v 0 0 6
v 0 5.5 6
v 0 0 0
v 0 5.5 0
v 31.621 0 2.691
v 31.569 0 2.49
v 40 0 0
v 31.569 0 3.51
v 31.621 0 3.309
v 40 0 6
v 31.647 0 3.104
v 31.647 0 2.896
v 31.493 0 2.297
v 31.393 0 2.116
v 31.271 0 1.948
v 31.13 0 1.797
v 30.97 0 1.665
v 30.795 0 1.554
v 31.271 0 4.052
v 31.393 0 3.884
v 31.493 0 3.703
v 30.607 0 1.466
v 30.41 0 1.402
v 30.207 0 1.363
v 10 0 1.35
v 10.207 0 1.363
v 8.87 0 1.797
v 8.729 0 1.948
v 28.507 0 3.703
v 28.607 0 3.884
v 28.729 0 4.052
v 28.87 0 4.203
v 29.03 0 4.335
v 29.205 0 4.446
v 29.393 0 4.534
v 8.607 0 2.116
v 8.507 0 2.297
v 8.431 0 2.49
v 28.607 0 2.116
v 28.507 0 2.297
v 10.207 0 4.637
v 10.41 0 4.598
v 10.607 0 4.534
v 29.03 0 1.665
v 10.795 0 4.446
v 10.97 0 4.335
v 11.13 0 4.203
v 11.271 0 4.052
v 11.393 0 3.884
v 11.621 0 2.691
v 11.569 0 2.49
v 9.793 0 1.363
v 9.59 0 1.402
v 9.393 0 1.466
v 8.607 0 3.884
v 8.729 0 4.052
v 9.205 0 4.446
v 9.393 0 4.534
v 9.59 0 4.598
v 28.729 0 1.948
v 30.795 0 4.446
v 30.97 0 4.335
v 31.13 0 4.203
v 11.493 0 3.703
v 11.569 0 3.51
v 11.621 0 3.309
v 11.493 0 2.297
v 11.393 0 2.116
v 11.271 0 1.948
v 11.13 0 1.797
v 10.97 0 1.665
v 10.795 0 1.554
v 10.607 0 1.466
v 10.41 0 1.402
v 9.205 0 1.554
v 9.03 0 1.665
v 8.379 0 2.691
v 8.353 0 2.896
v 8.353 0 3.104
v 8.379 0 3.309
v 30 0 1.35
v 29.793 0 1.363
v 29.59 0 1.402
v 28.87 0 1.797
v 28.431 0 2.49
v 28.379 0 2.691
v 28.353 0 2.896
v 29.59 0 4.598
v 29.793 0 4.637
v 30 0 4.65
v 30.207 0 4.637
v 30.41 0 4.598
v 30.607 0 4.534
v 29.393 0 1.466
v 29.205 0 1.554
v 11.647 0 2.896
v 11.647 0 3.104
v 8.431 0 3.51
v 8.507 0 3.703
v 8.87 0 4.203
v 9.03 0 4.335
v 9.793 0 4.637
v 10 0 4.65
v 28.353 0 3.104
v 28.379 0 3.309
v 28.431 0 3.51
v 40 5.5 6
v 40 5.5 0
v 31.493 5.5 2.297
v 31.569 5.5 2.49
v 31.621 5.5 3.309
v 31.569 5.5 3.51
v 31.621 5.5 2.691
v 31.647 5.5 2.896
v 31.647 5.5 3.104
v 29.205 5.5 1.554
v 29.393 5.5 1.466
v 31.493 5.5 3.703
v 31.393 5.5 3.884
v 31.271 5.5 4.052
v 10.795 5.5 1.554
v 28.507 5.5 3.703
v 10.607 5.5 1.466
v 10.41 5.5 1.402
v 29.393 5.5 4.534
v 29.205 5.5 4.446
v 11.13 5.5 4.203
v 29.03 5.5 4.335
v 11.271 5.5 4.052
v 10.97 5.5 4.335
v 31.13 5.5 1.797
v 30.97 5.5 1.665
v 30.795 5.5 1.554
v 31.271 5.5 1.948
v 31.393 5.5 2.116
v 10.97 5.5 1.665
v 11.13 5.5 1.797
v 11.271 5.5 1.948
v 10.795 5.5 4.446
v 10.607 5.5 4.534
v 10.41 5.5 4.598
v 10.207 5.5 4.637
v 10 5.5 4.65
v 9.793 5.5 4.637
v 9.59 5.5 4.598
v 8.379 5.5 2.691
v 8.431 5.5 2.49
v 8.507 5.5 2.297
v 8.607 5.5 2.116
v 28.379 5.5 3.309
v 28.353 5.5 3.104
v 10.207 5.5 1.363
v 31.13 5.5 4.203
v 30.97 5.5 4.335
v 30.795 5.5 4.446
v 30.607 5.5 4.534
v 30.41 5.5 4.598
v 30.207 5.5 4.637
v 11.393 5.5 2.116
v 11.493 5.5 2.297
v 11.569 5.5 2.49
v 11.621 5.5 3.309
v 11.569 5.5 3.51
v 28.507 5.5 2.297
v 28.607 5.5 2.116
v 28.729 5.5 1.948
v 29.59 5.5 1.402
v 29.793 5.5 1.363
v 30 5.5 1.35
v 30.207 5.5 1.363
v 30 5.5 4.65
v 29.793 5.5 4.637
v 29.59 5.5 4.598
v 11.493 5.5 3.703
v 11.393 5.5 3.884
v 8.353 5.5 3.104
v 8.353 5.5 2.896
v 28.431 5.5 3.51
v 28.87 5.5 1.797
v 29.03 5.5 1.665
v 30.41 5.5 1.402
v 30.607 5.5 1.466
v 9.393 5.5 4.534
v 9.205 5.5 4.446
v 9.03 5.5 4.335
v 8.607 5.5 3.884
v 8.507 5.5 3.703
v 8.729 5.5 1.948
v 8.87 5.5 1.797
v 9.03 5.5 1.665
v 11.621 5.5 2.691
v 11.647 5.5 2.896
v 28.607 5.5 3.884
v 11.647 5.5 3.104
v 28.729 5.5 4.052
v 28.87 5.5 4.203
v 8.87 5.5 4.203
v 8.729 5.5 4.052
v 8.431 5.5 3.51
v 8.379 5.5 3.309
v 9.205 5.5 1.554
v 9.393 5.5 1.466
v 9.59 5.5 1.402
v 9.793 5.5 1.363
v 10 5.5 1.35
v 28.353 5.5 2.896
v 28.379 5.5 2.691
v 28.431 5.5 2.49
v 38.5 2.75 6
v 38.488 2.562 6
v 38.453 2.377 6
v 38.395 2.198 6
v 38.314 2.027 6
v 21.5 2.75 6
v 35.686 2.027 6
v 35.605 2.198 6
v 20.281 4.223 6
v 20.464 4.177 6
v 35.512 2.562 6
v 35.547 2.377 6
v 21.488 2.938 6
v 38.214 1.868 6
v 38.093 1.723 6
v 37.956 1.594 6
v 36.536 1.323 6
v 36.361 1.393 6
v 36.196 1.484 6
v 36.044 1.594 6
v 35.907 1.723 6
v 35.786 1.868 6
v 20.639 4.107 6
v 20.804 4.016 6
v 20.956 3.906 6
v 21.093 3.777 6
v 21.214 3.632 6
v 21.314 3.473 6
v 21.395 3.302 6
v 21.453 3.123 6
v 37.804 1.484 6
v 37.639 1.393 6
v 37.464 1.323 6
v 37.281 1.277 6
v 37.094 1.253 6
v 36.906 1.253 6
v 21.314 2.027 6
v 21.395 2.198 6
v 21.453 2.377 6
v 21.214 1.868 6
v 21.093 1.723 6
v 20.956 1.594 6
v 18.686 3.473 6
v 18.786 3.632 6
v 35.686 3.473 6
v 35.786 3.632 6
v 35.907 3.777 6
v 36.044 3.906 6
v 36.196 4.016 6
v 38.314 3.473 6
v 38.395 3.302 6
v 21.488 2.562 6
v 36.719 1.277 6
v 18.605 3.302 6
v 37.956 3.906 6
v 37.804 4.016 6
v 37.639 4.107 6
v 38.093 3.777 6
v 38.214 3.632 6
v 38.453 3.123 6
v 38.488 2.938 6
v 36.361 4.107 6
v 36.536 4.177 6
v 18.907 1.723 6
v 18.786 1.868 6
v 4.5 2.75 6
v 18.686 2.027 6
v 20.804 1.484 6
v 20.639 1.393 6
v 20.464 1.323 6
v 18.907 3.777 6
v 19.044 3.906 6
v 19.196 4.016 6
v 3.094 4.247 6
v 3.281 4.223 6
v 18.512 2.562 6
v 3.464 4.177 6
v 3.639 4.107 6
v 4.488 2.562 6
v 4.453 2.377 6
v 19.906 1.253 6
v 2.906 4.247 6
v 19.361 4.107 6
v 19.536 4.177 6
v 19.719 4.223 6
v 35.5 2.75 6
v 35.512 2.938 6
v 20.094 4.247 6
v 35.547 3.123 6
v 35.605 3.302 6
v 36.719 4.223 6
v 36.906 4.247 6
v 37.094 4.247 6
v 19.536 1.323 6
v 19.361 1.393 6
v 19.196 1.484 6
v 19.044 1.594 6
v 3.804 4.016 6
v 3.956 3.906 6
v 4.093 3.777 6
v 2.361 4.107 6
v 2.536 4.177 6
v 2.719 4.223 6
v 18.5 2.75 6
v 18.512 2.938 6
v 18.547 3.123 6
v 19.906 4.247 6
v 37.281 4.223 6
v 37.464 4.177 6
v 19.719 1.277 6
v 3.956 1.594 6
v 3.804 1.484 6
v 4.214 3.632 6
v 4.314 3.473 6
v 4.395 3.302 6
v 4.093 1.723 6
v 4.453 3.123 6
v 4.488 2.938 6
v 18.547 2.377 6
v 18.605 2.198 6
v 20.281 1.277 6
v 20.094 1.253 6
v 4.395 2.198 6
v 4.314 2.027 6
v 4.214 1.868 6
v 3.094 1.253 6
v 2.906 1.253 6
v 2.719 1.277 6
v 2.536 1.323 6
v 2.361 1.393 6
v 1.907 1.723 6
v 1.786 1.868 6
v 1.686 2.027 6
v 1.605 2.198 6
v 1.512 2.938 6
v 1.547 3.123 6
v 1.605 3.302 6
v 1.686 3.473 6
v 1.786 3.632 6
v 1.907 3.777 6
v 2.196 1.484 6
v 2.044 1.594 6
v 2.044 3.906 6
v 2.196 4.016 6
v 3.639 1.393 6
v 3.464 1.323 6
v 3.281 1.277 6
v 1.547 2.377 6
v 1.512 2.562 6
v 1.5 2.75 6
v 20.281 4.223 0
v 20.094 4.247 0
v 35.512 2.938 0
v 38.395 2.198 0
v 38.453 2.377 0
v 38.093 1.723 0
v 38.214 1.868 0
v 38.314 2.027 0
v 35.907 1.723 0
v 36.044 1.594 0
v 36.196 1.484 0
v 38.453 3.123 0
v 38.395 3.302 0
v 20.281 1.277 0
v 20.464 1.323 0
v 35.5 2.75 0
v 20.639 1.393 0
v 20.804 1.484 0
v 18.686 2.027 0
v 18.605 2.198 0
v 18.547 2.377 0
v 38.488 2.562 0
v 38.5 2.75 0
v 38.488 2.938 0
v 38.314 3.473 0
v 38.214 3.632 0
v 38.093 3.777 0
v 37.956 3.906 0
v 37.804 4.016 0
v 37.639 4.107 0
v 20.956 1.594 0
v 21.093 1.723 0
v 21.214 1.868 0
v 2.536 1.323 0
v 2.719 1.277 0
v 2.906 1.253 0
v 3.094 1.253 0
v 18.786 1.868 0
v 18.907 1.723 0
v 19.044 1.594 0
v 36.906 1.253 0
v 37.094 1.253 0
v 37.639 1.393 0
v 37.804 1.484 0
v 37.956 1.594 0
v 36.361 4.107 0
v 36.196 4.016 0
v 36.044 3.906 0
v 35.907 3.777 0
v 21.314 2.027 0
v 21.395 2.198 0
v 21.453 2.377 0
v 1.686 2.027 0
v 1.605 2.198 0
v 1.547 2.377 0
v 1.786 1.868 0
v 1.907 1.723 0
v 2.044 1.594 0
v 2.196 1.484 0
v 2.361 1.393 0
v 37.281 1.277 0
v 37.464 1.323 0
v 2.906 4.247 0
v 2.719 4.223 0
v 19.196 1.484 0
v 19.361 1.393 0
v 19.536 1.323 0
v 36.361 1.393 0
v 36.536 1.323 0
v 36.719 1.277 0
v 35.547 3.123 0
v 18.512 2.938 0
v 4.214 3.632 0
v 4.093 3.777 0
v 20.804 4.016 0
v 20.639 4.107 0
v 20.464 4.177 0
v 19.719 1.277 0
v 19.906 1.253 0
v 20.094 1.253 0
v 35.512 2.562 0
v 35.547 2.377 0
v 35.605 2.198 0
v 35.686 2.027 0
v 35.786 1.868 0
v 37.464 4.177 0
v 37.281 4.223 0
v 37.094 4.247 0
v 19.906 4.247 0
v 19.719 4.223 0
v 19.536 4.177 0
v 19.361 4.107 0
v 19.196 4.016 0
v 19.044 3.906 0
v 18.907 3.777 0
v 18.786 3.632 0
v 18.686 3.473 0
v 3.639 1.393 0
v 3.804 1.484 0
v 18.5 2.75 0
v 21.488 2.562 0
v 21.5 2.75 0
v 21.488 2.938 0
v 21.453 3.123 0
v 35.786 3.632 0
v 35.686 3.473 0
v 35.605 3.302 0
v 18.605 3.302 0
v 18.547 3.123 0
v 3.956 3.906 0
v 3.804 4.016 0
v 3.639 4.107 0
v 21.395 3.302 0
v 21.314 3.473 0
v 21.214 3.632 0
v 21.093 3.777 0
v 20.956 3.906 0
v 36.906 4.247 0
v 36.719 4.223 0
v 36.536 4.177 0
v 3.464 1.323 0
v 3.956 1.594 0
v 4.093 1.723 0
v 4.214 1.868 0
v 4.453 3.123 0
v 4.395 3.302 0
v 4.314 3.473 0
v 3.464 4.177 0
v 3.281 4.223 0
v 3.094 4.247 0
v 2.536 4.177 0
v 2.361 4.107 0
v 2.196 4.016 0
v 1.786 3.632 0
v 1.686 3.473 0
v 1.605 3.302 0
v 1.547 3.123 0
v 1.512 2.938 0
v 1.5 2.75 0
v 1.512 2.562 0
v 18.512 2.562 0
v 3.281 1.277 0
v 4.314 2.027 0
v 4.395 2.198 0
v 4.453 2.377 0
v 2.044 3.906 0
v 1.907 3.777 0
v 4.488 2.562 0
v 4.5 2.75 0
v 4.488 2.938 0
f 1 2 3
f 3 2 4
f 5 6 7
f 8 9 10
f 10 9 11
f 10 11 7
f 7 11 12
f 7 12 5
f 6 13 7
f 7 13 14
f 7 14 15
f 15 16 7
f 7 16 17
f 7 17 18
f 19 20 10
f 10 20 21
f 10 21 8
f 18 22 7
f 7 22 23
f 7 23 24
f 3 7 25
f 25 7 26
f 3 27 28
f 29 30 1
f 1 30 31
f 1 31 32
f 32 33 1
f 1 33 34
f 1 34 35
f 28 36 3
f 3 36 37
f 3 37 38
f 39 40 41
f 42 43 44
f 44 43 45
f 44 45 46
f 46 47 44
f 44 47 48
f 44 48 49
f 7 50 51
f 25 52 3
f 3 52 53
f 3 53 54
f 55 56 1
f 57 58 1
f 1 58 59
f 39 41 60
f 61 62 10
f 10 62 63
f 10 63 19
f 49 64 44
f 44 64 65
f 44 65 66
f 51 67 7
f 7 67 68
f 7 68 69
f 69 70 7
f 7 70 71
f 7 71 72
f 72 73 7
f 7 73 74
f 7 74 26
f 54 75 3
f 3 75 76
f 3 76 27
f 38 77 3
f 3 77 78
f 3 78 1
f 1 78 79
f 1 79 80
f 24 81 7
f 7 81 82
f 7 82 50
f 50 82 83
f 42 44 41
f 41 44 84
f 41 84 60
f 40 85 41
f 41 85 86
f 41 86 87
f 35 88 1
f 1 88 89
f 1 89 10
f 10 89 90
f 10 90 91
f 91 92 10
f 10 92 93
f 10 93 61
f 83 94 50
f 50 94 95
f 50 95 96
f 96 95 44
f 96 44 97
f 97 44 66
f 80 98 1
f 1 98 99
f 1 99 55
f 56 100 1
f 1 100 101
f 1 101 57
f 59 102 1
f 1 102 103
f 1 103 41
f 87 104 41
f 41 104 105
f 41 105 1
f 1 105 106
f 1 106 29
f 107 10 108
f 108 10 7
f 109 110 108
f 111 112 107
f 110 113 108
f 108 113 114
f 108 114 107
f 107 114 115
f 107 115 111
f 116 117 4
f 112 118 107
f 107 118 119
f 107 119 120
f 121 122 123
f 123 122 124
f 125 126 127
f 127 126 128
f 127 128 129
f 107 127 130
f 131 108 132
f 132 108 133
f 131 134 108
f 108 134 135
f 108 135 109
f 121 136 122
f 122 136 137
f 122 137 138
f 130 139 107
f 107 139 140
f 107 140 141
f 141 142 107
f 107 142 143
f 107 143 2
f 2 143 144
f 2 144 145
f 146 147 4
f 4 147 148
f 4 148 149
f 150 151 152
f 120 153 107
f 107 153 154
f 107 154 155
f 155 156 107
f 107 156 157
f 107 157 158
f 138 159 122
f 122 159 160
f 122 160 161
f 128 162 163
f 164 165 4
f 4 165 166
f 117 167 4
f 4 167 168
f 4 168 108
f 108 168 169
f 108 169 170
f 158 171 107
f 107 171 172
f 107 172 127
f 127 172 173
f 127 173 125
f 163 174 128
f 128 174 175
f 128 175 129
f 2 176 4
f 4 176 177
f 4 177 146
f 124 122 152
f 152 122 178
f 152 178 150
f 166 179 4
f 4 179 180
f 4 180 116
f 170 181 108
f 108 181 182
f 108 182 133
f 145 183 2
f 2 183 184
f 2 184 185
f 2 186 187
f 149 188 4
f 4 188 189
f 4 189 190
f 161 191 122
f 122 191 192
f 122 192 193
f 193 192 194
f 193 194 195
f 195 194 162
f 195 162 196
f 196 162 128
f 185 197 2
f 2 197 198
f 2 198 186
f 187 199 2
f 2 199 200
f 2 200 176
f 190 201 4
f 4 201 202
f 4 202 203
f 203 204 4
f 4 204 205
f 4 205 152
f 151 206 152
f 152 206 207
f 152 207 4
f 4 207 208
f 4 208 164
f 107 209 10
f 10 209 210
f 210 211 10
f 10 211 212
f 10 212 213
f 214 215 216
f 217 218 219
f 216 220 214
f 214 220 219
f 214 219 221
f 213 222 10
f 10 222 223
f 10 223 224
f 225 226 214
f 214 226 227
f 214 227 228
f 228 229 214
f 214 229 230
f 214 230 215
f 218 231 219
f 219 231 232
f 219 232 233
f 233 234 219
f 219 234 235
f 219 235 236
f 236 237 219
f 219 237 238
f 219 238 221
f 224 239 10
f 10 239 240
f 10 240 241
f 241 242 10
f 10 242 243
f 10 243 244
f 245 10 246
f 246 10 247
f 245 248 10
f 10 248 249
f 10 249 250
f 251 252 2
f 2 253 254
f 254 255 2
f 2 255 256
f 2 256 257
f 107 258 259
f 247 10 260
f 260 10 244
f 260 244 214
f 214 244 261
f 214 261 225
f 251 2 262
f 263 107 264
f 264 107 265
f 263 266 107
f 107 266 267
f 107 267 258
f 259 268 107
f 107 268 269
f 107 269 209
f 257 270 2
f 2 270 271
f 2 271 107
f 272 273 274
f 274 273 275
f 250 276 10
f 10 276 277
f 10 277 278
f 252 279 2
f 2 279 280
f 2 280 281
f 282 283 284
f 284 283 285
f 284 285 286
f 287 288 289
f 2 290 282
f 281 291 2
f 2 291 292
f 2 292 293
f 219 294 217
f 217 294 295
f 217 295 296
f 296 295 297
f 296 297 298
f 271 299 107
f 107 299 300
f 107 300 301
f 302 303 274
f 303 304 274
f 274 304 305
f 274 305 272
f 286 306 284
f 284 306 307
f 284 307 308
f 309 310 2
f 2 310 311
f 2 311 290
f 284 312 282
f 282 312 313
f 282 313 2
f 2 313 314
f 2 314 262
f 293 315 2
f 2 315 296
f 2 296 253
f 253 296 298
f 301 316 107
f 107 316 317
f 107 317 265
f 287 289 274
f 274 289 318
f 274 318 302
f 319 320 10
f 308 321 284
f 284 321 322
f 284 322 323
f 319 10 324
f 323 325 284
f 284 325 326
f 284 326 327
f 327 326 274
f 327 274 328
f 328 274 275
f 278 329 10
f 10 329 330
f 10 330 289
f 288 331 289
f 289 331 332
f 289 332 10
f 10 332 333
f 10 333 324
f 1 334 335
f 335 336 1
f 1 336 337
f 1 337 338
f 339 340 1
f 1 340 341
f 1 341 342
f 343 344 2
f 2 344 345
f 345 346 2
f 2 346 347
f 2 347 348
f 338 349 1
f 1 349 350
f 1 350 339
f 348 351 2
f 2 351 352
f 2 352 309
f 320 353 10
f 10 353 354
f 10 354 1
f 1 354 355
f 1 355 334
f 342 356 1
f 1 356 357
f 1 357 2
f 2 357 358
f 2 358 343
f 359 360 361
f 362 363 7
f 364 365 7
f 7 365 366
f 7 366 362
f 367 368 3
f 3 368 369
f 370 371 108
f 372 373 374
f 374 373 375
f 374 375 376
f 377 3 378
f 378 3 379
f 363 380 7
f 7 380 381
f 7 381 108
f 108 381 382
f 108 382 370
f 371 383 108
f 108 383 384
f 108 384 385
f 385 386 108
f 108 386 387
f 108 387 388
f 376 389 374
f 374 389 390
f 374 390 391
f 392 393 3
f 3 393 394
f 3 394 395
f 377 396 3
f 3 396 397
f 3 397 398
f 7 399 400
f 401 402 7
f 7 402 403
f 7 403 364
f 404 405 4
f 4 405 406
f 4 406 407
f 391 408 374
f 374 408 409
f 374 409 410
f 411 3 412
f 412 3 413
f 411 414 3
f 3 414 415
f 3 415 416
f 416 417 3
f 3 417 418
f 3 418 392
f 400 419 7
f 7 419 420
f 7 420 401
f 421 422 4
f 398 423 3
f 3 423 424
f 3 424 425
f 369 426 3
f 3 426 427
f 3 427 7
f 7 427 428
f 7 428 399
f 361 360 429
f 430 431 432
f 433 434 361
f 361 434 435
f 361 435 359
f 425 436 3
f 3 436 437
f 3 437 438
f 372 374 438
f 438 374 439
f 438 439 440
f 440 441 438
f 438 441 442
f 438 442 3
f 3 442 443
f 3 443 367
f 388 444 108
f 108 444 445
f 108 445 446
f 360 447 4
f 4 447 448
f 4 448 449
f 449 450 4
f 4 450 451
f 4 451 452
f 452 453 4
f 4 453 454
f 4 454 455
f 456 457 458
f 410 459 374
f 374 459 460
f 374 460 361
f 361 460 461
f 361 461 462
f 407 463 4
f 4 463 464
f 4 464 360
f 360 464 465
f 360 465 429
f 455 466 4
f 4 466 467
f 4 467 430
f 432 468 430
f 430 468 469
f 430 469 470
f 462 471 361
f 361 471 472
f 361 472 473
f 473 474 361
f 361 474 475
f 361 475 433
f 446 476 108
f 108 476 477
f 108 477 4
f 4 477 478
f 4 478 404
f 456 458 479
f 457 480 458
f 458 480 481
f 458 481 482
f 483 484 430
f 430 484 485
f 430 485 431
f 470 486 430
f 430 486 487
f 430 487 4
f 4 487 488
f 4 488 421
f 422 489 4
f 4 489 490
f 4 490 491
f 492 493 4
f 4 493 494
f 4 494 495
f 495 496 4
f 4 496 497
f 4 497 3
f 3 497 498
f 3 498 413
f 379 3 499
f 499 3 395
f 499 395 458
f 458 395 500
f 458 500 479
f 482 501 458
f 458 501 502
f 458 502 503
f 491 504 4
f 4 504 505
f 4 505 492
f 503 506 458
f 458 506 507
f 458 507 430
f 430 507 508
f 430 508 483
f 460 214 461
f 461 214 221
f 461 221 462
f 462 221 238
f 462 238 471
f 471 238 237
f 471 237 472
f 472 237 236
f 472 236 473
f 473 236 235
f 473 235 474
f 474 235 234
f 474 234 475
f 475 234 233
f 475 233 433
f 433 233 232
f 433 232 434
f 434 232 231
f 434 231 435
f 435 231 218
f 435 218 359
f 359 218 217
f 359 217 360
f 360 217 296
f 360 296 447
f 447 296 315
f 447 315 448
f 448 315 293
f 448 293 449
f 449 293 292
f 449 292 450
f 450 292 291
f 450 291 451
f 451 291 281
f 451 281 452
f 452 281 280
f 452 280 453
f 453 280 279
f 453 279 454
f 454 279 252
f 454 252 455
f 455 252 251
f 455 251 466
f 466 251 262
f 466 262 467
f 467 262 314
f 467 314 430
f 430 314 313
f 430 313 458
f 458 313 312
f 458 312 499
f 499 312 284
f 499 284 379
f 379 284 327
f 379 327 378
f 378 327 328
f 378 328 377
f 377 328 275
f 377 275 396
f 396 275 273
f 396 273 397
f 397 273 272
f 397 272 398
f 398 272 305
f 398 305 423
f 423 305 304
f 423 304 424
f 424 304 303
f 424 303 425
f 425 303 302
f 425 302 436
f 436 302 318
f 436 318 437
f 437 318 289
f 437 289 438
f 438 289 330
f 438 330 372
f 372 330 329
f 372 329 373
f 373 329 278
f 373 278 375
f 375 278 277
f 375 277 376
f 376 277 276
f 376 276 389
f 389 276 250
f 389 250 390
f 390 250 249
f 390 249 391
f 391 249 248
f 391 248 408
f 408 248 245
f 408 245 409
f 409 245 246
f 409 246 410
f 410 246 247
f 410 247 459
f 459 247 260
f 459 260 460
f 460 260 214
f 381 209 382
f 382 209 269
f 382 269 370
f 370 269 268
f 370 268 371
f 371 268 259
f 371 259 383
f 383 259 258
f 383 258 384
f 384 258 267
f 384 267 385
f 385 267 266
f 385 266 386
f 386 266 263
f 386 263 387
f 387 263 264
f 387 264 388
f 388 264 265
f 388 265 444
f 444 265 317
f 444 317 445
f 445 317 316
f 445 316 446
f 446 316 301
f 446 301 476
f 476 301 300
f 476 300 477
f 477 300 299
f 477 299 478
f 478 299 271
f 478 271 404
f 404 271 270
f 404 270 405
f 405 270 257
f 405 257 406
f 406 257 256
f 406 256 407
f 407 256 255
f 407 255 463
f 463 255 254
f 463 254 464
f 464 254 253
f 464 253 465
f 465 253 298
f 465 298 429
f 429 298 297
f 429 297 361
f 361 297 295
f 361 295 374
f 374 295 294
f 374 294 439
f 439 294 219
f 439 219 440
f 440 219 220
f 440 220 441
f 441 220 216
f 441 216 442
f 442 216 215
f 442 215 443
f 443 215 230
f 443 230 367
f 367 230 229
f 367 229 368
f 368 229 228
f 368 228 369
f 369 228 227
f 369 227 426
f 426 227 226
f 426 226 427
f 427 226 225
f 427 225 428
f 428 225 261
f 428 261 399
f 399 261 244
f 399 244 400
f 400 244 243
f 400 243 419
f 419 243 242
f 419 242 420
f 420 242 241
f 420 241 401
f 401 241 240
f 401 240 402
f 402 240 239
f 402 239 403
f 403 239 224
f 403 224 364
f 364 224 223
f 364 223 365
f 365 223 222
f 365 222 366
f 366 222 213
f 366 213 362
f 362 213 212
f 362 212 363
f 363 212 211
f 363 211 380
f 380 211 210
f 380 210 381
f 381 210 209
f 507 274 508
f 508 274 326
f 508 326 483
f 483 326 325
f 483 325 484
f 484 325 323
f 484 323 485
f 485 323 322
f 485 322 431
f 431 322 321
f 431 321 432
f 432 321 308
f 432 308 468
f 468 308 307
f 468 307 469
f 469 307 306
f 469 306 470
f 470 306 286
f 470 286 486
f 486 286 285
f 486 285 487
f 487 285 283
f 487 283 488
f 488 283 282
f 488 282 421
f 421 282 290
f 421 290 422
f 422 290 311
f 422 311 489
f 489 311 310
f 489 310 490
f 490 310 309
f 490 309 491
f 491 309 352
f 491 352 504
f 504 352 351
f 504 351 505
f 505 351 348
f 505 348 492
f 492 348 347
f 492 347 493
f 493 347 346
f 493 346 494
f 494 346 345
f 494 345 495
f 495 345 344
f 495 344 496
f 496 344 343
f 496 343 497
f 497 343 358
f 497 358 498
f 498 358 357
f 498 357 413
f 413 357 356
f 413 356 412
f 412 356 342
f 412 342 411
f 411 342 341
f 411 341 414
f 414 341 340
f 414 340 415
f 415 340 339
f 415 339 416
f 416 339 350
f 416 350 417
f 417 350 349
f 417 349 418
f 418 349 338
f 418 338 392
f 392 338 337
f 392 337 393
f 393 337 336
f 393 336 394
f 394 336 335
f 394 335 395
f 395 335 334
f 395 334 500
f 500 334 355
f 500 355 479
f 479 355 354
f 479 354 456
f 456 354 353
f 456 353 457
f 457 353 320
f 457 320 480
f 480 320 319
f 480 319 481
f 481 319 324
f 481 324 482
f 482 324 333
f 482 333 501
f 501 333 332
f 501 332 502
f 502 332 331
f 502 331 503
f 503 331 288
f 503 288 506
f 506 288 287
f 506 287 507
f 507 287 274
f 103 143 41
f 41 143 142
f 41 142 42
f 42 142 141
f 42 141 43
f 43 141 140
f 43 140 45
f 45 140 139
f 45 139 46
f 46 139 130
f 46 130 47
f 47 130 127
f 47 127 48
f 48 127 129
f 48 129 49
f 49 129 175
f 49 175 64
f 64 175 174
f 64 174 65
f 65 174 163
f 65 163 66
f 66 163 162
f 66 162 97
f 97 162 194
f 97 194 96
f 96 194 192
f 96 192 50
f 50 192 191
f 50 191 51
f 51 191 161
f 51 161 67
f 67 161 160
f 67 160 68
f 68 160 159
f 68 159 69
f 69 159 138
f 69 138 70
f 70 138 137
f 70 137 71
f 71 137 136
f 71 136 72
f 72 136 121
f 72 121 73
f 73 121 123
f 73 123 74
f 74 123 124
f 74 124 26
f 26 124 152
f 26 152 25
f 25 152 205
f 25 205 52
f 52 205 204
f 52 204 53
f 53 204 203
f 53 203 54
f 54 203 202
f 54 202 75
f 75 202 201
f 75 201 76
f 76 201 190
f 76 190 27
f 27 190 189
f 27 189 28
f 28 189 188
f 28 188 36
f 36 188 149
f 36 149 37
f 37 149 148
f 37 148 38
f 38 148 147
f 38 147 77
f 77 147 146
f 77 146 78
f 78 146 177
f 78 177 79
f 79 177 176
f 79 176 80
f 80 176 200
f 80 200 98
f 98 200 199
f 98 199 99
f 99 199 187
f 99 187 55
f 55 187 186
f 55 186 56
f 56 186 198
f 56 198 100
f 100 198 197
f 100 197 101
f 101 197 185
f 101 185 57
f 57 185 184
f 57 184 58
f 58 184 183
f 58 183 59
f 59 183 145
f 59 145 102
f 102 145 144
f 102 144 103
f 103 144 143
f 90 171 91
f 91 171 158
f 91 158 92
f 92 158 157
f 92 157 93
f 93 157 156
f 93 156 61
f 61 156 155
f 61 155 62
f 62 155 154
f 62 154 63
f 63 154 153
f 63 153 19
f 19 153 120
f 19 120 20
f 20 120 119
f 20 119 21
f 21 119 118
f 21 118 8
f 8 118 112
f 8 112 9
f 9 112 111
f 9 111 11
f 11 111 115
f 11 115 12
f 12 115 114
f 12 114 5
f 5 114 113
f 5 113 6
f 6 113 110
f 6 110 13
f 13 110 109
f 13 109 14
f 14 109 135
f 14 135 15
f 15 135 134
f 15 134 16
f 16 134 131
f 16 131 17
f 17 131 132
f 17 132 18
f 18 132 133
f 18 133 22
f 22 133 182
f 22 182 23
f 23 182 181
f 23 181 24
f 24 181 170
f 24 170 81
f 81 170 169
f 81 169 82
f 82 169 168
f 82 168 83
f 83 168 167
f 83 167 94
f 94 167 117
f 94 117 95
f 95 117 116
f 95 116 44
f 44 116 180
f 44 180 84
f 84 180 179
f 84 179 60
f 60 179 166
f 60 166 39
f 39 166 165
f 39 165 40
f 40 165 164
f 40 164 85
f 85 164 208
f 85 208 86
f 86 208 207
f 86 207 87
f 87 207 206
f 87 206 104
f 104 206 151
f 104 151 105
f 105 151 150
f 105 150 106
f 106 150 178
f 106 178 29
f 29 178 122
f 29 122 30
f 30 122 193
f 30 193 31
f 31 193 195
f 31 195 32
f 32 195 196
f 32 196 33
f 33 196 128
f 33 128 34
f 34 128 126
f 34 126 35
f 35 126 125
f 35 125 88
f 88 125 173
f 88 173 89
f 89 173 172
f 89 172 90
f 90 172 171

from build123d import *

# Parameters (mm, degrees)
ESQUISSE1_W                  = 40
ESQUISSE1_H                  = 5.5
BOSS_EXTRU_1_DEPTH           = 6
ESQUISSE2_R                  = 1.5
ENL_V_MAT_EXTRU_1_DEPTH      = 1
ENL_V_MAT_EXTRU_1_DEPTH_BACK = 7
ESQUISSE3_R                  = 1.65
ENL_V_MAT_EXTRU_2_DEPTH      = 1
ENL_V_MAT_EXTRU_2_DEPTH_BACK = 6.5


with BuildPart() as part:
    # Esquisse1 → Boss.-Extru.1 (new body)
    with BuildSketch(Plane.XY):
        with Locations((20, 2.75)):
            Rectangle(ESQUISSE1_W, ESQUISSE1_H)
    extrude(amount=BOSS_EXTRU_1_DEPTH)

    # Esquisse2 → Enlèv. mat.-Extru.1 (cut, two sides)
    with BuildSketch(Plane.XY.offset(6)) as enl_v_mat_extru_1_sk:
        with Locations((20, 2.75)):
            Circle(ESQUISSE2_R)
        with Locations((3, 2.75)):
            Circle(ESQUISSE2_R)
        with Locations((37, 2.75)):
            Circle(ESQUISSE2_R)
    extrude(amount=ENL_V_MAT_EXTRU_1_DEPTH, mode=Mode.SUBTRACT)
    extrude(enl_v_mat_extru_1_sk.sketch, amount=-ENL_V_MAT_EXTRU_1_DEPTH_BACK, mode=Mode.SUBTRACT)

    # Esquisse3 → Enlèv. mat.-Extru.2 (cut, two sides)
    with BuildSketch(Plane(origin=(0, 5.5, 0), x_dir=(1, 0, 0), z_dir=(0, 1, 0))) as enl_v_mat_extru_2_sk:
        with Locations((10, -3)):
            Circle(ESQUISSE3_R)
        with Locations((30, -3)):
            Circle(ESQUISSE3_R)
    extrude(amount=ENL_V_MAT_EXTRU_2_DEPTH, mode=Mode.SUBTRACT)
    extrude(enl_v_mat_extru_2_sk.sketch, amount=-ENL_V_MAT_EXTRU_2_DEPTH_BACK, mode=Mode.SUBTRACT)


solid = part.part
